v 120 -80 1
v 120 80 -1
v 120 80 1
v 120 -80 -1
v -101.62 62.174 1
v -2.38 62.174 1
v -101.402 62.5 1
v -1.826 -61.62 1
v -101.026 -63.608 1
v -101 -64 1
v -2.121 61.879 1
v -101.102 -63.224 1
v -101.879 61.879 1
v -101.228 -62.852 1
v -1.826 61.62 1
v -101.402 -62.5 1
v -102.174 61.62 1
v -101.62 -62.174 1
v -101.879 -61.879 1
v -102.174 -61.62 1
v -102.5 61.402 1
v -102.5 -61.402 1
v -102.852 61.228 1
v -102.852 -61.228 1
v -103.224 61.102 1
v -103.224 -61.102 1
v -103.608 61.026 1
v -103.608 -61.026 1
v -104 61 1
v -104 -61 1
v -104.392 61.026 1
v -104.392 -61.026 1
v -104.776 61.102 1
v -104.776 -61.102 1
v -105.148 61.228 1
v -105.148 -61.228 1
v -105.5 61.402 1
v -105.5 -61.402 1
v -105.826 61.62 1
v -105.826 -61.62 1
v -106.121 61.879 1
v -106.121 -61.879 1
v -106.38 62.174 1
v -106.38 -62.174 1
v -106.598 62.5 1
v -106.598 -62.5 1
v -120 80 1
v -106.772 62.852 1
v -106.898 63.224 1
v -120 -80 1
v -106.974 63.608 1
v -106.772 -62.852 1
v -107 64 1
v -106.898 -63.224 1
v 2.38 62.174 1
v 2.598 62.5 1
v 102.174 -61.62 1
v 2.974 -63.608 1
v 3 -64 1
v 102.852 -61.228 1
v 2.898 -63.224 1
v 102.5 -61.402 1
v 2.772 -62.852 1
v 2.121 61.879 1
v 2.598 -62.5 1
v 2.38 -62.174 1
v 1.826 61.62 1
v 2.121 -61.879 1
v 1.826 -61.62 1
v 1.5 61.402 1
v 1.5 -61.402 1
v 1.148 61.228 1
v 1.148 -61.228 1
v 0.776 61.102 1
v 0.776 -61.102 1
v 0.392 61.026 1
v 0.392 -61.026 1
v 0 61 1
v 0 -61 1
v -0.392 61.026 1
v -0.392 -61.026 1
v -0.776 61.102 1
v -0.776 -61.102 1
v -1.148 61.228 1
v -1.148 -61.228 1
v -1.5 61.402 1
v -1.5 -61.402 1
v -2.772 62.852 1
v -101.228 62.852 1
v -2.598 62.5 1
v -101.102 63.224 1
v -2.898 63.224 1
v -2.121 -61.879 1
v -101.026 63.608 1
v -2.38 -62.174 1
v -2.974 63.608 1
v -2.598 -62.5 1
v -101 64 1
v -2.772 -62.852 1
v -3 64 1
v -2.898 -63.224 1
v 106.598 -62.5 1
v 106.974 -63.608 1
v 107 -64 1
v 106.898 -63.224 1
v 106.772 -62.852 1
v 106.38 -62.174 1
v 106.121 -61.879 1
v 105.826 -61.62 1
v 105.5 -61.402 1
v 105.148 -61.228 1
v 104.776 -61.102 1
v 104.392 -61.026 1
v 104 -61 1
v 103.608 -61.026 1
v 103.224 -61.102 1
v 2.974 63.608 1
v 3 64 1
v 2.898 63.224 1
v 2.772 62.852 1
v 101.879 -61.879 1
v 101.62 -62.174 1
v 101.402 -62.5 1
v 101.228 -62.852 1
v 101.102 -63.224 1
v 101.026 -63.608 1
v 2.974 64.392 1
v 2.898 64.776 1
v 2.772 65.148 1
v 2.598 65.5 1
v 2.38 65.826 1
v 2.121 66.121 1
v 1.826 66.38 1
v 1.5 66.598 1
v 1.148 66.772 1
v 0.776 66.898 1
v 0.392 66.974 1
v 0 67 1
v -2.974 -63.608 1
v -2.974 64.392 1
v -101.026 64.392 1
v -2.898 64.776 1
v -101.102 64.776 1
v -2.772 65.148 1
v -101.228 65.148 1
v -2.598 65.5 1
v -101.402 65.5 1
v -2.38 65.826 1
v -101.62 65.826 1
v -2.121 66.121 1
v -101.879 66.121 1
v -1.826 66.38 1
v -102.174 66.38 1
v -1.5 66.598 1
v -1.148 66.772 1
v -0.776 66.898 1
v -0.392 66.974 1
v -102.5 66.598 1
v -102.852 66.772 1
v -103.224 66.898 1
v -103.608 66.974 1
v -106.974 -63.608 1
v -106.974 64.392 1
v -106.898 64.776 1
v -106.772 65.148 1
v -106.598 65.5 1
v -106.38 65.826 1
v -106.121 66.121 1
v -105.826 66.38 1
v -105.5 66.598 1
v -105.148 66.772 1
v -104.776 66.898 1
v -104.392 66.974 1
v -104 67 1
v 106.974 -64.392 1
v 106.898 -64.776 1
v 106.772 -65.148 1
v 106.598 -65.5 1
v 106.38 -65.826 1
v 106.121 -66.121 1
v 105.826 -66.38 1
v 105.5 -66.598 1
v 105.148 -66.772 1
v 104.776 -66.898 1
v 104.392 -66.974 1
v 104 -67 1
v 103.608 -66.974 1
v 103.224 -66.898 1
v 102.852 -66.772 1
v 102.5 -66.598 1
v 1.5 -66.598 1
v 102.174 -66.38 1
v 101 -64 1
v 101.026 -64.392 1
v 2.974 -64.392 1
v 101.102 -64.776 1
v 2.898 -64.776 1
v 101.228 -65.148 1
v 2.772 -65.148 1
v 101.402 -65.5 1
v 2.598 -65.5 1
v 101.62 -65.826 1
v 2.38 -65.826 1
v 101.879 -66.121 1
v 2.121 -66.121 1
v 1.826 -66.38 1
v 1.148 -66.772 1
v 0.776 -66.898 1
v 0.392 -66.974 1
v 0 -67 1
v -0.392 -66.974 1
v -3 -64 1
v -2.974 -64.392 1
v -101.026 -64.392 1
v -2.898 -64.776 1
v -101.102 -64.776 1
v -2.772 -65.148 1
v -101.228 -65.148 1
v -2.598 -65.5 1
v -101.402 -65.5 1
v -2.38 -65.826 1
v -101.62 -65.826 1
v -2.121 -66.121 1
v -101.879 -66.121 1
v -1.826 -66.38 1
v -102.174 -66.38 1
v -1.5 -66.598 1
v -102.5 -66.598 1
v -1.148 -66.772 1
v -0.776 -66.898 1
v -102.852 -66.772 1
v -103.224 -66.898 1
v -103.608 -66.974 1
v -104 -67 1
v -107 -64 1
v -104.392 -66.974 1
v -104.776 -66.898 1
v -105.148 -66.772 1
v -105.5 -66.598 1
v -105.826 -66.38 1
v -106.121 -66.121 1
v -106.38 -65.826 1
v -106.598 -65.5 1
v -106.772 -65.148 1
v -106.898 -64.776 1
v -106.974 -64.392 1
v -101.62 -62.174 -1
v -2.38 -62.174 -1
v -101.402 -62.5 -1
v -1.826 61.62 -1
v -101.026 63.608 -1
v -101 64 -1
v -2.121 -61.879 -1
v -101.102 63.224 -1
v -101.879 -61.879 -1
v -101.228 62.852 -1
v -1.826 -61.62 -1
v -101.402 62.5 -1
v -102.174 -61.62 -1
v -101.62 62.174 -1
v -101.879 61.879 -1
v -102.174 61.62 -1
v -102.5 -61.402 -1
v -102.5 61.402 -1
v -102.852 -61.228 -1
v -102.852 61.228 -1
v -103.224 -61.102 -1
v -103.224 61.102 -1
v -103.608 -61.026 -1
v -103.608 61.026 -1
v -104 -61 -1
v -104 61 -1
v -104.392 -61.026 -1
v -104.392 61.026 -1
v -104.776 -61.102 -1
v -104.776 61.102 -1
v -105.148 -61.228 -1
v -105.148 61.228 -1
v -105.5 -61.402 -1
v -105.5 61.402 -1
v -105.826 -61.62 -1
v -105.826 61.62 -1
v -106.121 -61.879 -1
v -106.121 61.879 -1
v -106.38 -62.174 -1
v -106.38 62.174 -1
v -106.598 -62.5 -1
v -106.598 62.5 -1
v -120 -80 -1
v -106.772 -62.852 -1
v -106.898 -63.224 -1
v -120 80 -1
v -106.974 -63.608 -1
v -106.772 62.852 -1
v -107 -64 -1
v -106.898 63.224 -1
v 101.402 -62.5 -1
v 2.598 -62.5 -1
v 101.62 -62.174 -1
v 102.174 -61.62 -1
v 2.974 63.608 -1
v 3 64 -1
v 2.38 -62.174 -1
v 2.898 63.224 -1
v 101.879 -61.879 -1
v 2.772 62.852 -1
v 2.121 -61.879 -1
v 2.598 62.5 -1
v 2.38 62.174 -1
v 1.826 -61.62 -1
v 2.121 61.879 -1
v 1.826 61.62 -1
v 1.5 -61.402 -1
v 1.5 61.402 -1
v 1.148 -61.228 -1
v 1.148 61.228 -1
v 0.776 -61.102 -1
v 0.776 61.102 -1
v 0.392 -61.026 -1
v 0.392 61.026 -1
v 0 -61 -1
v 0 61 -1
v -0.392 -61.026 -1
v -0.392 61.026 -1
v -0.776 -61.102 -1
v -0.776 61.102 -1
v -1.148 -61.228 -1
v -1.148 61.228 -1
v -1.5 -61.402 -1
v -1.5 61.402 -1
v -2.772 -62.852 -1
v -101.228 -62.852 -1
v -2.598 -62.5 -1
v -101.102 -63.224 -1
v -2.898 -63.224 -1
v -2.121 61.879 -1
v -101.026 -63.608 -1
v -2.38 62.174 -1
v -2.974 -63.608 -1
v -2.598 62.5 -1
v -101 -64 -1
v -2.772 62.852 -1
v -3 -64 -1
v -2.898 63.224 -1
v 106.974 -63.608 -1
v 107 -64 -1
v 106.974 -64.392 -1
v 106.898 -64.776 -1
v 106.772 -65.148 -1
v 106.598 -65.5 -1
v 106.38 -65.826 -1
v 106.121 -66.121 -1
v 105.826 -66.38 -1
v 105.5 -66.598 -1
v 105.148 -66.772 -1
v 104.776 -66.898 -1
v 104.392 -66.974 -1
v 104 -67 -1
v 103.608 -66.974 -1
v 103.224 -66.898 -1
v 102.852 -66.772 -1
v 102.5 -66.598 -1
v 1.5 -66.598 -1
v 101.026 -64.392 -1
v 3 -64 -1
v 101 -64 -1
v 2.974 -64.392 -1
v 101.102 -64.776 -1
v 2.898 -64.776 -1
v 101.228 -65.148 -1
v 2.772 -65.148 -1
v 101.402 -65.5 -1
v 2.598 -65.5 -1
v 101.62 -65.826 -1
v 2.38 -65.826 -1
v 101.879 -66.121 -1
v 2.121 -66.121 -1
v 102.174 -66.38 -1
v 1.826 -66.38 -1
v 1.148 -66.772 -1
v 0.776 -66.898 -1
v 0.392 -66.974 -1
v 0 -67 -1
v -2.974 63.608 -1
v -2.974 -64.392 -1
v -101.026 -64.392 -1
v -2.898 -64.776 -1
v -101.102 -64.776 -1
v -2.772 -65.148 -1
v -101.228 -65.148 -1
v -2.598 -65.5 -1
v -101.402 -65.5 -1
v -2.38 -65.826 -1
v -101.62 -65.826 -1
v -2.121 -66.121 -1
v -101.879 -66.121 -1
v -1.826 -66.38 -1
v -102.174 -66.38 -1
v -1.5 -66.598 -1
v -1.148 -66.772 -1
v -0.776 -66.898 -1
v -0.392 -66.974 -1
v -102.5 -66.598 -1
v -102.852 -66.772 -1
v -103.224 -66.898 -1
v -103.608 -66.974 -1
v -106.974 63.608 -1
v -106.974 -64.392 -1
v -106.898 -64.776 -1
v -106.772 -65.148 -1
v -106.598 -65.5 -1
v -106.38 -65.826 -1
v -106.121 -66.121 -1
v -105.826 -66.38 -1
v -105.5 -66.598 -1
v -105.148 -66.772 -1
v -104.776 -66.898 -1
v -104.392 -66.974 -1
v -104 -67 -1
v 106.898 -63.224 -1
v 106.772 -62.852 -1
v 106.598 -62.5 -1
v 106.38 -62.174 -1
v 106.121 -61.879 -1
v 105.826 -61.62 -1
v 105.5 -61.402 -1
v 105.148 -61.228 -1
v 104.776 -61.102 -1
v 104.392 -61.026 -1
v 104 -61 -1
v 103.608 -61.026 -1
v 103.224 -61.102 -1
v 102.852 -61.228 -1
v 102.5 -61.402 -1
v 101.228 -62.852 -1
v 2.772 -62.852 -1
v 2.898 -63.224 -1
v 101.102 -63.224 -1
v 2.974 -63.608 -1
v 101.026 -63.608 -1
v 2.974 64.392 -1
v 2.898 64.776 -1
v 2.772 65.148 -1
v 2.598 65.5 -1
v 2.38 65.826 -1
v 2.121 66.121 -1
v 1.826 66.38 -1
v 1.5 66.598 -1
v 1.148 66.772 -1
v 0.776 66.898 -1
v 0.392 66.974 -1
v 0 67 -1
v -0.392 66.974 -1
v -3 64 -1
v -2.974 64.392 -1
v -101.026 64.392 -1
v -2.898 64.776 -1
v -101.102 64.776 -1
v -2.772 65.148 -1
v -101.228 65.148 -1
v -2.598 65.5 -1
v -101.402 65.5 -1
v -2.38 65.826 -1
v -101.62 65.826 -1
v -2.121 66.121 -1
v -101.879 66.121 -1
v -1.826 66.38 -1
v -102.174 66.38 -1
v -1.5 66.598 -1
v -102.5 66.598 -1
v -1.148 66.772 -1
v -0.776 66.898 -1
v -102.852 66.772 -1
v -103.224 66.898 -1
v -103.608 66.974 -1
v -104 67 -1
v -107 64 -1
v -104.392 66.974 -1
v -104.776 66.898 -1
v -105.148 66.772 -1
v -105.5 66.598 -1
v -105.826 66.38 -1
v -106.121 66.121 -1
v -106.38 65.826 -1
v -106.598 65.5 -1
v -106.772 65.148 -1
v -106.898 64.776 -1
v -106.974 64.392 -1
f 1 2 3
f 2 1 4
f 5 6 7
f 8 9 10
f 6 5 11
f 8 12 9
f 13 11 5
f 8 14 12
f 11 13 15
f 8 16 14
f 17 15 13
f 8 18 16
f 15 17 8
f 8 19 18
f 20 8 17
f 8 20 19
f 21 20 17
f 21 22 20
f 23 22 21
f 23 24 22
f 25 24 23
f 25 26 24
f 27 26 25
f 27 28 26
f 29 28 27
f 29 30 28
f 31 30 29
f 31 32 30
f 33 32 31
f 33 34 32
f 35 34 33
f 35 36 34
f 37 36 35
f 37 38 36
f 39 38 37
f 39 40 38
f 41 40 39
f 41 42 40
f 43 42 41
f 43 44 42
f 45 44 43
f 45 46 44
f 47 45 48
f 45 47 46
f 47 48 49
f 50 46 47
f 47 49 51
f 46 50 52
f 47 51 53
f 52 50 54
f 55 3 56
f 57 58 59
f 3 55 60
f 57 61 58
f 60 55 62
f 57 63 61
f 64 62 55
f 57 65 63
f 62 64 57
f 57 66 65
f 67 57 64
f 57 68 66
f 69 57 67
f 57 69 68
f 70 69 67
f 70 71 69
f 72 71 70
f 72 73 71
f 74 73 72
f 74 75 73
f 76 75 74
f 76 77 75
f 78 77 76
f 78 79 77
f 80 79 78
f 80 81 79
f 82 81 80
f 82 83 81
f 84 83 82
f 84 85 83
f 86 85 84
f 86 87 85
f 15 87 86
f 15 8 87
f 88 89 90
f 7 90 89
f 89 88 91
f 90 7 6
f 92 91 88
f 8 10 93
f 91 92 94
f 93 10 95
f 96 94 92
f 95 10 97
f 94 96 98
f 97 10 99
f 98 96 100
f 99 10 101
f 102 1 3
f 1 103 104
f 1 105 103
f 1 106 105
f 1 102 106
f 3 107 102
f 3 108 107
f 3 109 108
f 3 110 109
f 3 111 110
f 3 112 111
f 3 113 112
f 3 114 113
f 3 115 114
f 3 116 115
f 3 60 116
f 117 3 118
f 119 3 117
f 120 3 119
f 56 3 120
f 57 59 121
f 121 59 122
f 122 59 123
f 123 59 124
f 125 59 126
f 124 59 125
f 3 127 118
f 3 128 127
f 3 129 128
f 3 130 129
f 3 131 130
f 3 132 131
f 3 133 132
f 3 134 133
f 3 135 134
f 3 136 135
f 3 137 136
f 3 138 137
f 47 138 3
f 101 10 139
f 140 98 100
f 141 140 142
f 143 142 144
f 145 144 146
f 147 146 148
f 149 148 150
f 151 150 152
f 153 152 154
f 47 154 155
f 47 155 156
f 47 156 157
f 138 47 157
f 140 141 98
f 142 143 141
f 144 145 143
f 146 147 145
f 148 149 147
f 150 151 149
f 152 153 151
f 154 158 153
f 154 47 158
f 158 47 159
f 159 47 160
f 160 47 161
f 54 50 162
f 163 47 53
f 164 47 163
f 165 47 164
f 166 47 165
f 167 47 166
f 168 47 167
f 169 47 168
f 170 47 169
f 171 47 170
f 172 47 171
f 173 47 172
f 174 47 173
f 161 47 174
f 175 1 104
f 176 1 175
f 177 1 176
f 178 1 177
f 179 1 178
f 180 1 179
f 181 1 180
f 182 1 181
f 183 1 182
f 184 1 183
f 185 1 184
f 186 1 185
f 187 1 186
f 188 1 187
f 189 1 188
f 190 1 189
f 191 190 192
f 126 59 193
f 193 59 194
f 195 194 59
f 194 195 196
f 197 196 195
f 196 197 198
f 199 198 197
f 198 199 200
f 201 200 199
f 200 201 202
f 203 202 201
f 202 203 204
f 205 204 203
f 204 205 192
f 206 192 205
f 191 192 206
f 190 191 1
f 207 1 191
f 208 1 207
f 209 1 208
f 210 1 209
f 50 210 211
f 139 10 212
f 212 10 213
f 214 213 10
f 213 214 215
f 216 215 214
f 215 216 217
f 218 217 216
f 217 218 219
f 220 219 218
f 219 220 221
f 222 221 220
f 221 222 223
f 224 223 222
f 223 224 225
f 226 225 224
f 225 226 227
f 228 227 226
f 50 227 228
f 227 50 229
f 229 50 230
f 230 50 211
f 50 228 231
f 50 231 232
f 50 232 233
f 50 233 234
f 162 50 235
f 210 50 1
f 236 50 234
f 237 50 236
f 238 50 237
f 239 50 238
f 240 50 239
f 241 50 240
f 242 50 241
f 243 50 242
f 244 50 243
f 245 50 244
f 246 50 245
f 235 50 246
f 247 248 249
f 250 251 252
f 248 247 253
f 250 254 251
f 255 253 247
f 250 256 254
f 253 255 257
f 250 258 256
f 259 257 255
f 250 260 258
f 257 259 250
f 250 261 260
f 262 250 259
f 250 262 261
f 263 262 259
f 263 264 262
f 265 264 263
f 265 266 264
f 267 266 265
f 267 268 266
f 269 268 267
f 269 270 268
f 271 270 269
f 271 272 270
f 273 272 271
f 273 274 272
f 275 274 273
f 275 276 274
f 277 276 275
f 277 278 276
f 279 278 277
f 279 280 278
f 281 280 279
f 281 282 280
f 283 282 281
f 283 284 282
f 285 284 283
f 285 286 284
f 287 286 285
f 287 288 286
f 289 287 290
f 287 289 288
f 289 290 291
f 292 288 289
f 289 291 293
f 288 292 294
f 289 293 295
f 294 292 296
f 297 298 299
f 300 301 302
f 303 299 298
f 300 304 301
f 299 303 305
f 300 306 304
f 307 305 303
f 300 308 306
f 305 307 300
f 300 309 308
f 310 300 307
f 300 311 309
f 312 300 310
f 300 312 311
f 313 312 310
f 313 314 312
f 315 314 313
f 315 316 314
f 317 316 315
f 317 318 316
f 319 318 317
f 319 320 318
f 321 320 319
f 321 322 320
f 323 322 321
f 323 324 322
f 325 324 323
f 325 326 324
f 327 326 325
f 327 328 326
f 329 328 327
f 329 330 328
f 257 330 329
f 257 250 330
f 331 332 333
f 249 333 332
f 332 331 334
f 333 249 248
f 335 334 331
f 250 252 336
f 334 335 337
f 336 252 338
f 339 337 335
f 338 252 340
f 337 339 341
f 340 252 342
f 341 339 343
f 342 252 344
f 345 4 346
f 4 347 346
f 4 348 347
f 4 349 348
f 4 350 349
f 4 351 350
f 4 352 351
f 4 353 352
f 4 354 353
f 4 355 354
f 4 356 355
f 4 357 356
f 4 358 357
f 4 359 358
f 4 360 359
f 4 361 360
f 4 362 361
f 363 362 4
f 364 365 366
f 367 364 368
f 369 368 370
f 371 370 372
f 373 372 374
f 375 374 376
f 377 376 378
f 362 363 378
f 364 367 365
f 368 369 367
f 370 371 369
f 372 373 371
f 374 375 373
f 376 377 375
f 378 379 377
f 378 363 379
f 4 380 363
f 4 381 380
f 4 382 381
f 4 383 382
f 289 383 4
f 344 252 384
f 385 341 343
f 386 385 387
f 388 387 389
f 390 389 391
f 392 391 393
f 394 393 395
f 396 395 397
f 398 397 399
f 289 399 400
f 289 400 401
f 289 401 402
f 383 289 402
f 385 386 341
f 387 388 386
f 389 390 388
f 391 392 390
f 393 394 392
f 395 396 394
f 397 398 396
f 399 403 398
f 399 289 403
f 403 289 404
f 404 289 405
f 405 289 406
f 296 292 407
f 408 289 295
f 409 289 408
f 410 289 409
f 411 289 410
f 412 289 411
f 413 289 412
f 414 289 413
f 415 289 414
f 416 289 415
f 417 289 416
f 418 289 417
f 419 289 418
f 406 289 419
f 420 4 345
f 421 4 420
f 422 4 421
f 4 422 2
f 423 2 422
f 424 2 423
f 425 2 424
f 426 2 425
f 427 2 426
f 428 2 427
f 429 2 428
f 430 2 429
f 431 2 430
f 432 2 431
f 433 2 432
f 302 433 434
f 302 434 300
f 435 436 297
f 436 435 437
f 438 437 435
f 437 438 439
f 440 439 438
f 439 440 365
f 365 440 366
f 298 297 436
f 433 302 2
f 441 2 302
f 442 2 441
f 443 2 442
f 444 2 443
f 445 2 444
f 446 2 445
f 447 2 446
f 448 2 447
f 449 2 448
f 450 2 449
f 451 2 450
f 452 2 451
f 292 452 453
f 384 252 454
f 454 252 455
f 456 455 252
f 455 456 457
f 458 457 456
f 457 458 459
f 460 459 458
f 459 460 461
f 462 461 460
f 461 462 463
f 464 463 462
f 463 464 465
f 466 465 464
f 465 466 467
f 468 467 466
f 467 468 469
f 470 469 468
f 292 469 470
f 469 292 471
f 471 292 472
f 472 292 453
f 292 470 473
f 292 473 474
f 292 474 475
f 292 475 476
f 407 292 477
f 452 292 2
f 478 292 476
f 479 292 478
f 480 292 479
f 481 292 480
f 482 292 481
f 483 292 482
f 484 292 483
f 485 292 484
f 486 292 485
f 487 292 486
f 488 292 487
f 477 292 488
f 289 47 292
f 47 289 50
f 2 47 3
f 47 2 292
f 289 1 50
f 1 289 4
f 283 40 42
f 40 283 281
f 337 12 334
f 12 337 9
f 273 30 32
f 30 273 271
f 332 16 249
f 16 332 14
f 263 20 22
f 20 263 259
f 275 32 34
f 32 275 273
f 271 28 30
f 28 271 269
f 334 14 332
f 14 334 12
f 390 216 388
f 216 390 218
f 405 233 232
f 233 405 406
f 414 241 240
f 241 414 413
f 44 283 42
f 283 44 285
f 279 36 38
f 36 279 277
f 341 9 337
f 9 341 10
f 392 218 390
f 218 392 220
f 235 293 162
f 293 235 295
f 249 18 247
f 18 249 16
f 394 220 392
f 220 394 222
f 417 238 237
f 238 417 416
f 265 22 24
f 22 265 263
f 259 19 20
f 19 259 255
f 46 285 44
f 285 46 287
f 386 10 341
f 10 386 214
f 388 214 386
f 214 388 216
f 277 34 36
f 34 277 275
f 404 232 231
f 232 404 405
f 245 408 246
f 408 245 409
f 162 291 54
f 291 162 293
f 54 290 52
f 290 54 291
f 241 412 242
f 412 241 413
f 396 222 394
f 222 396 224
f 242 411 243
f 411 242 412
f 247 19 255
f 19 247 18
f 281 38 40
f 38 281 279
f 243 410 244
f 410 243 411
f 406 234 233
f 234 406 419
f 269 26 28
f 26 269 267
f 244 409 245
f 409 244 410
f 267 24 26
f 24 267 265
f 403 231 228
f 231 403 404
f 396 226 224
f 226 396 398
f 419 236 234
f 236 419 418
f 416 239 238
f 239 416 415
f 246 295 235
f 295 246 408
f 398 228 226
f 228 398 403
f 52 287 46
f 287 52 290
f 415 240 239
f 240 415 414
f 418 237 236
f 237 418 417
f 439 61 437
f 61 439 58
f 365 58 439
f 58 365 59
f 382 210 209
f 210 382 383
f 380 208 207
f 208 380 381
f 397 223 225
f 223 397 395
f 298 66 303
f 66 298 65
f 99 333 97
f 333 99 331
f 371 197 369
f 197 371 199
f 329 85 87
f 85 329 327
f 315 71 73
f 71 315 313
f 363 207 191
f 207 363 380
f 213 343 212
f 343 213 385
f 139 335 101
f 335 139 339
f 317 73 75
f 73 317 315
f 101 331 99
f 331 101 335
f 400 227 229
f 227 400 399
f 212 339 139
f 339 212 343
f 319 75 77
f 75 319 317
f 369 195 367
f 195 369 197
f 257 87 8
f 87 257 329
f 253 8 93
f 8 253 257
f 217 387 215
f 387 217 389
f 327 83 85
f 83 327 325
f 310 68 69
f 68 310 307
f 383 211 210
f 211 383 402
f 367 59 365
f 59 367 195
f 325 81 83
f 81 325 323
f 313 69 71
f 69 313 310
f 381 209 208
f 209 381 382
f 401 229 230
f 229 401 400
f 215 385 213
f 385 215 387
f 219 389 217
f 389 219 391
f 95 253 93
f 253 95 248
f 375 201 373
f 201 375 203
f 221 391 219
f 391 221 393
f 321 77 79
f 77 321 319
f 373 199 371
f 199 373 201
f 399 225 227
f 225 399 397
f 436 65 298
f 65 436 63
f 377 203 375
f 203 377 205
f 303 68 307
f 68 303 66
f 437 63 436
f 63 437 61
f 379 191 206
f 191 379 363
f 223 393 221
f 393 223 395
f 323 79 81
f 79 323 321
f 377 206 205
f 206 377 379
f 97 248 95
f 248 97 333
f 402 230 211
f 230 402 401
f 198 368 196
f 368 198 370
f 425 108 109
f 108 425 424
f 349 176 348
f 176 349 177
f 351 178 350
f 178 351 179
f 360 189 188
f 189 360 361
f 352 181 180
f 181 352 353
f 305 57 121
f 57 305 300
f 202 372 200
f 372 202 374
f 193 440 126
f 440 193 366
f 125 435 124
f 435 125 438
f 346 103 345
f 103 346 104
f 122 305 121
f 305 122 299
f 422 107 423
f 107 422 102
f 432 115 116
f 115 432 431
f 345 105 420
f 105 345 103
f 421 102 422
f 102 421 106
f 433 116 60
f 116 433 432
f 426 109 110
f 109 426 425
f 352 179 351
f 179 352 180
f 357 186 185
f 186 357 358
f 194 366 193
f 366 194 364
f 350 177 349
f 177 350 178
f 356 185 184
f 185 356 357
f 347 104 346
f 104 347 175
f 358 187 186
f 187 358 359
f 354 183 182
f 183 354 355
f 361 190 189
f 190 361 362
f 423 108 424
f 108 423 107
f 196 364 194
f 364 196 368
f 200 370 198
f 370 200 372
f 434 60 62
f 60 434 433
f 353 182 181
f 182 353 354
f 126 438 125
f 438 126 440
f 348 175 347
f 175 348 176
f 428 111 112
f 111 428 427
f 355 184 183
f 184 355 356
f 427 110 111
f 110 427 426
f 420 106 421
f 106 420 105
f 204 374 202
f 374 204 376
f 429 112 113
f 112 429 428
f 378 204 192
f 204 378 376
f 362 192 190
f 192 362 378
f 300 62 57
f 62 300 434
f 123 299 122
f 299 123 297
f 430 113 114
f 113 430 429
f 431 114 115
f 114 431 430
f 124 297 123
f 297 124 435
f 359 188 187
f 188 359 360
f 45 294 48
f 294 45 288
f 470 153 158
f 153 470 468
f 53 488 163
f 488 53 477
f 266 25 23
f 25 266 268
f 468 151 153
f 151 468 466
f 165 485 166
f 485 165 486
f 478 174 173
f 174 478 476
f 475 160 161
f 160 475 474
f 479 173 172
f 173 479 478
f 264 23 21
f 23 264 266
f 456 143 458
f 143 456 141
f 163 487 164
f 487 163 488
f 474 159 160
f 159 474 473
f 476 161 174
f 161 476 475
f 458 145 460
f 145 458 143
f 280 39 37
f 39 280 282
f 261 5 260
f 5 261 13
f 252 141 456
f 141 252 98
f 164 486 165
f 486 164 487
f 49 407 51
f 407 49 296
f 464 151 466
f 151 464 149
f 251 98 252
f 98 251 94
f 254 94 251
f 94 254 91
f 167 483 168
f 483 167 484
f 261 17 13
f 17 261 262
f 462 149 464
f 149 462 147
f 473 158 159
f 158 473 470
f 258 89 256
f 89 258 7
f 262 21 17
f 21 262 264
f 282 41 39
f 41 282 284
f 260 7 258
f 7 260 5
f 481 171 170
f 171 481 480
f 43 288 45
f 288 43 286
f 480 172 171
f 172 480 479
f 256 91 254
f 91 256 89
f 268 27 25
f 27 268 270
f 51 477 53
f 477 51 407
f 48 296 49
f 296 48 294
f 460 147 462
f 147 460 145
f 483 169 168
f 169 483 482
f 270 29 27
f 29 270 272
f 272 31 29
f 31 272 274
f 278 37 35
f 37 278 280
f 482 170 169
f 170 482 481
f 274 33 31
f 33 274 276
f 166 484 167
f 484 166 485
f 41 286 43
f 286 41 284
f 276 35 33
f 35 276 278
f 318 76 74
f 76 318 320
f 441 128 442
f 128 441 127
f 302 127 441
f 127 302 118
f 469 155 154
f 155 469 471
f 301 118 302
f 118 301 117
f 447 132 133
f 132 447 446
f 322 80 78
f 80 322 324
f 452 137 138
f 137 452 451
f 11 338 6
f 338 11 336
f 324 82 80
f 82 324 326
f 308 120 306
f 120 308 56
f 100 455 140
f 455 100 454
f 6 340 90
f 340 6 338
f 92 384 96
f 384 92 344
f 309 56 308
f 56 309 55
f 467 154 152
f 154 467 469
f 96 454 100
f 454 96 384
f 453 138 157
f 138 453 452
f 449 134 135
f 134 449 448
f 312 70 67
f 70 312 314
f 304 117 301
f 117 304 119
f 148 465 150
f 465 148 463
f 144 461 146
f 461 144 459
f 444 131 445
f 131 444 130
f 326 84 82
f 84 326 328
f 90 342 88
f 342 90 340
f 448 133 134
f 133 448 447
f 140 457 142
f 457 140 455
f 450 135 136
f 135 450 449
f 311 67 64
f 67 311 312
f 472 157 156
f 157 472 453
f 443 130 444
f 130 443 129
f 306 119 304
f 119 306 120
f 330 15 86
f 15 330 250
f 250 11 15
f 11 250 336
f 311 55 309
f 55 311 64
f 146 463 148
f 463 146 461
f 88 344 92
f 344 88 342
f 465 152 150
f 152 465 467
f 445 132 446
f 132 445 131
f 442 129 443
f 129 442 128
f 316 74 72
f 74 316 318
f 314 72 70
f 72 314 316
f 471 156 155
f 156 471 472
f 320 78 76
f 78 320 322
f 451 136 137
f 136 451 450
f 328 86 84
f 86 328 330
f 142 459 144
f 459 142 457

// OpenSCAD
// ========================================
// a 24 x 16 x 0.2 cm plate with five 0.6 cm holes
// NeuroCAD canonical IR; dimensions are millimetres
// ========================================
$fn = 48;

difference() {
  cube(size=[240, 160, 2], center=true);
  translate([-104, -64, 0]) {
    cylinder(r=3, h=4, center=true);
  }
  translate([0, -64, 0]) {
    cylinder(r=3, h=4, center=true);
  }
  translate([104, -64, 0]) {
    cylinder(r=3, h=4, center=true);
  }
  translate([-104, 64, 0]) {
    cylinder(r=3, h=4, center=true);
  }
  translate([0, 64, 0]) {
    cylinder(r=3, h=4, center=true);
  }
}
